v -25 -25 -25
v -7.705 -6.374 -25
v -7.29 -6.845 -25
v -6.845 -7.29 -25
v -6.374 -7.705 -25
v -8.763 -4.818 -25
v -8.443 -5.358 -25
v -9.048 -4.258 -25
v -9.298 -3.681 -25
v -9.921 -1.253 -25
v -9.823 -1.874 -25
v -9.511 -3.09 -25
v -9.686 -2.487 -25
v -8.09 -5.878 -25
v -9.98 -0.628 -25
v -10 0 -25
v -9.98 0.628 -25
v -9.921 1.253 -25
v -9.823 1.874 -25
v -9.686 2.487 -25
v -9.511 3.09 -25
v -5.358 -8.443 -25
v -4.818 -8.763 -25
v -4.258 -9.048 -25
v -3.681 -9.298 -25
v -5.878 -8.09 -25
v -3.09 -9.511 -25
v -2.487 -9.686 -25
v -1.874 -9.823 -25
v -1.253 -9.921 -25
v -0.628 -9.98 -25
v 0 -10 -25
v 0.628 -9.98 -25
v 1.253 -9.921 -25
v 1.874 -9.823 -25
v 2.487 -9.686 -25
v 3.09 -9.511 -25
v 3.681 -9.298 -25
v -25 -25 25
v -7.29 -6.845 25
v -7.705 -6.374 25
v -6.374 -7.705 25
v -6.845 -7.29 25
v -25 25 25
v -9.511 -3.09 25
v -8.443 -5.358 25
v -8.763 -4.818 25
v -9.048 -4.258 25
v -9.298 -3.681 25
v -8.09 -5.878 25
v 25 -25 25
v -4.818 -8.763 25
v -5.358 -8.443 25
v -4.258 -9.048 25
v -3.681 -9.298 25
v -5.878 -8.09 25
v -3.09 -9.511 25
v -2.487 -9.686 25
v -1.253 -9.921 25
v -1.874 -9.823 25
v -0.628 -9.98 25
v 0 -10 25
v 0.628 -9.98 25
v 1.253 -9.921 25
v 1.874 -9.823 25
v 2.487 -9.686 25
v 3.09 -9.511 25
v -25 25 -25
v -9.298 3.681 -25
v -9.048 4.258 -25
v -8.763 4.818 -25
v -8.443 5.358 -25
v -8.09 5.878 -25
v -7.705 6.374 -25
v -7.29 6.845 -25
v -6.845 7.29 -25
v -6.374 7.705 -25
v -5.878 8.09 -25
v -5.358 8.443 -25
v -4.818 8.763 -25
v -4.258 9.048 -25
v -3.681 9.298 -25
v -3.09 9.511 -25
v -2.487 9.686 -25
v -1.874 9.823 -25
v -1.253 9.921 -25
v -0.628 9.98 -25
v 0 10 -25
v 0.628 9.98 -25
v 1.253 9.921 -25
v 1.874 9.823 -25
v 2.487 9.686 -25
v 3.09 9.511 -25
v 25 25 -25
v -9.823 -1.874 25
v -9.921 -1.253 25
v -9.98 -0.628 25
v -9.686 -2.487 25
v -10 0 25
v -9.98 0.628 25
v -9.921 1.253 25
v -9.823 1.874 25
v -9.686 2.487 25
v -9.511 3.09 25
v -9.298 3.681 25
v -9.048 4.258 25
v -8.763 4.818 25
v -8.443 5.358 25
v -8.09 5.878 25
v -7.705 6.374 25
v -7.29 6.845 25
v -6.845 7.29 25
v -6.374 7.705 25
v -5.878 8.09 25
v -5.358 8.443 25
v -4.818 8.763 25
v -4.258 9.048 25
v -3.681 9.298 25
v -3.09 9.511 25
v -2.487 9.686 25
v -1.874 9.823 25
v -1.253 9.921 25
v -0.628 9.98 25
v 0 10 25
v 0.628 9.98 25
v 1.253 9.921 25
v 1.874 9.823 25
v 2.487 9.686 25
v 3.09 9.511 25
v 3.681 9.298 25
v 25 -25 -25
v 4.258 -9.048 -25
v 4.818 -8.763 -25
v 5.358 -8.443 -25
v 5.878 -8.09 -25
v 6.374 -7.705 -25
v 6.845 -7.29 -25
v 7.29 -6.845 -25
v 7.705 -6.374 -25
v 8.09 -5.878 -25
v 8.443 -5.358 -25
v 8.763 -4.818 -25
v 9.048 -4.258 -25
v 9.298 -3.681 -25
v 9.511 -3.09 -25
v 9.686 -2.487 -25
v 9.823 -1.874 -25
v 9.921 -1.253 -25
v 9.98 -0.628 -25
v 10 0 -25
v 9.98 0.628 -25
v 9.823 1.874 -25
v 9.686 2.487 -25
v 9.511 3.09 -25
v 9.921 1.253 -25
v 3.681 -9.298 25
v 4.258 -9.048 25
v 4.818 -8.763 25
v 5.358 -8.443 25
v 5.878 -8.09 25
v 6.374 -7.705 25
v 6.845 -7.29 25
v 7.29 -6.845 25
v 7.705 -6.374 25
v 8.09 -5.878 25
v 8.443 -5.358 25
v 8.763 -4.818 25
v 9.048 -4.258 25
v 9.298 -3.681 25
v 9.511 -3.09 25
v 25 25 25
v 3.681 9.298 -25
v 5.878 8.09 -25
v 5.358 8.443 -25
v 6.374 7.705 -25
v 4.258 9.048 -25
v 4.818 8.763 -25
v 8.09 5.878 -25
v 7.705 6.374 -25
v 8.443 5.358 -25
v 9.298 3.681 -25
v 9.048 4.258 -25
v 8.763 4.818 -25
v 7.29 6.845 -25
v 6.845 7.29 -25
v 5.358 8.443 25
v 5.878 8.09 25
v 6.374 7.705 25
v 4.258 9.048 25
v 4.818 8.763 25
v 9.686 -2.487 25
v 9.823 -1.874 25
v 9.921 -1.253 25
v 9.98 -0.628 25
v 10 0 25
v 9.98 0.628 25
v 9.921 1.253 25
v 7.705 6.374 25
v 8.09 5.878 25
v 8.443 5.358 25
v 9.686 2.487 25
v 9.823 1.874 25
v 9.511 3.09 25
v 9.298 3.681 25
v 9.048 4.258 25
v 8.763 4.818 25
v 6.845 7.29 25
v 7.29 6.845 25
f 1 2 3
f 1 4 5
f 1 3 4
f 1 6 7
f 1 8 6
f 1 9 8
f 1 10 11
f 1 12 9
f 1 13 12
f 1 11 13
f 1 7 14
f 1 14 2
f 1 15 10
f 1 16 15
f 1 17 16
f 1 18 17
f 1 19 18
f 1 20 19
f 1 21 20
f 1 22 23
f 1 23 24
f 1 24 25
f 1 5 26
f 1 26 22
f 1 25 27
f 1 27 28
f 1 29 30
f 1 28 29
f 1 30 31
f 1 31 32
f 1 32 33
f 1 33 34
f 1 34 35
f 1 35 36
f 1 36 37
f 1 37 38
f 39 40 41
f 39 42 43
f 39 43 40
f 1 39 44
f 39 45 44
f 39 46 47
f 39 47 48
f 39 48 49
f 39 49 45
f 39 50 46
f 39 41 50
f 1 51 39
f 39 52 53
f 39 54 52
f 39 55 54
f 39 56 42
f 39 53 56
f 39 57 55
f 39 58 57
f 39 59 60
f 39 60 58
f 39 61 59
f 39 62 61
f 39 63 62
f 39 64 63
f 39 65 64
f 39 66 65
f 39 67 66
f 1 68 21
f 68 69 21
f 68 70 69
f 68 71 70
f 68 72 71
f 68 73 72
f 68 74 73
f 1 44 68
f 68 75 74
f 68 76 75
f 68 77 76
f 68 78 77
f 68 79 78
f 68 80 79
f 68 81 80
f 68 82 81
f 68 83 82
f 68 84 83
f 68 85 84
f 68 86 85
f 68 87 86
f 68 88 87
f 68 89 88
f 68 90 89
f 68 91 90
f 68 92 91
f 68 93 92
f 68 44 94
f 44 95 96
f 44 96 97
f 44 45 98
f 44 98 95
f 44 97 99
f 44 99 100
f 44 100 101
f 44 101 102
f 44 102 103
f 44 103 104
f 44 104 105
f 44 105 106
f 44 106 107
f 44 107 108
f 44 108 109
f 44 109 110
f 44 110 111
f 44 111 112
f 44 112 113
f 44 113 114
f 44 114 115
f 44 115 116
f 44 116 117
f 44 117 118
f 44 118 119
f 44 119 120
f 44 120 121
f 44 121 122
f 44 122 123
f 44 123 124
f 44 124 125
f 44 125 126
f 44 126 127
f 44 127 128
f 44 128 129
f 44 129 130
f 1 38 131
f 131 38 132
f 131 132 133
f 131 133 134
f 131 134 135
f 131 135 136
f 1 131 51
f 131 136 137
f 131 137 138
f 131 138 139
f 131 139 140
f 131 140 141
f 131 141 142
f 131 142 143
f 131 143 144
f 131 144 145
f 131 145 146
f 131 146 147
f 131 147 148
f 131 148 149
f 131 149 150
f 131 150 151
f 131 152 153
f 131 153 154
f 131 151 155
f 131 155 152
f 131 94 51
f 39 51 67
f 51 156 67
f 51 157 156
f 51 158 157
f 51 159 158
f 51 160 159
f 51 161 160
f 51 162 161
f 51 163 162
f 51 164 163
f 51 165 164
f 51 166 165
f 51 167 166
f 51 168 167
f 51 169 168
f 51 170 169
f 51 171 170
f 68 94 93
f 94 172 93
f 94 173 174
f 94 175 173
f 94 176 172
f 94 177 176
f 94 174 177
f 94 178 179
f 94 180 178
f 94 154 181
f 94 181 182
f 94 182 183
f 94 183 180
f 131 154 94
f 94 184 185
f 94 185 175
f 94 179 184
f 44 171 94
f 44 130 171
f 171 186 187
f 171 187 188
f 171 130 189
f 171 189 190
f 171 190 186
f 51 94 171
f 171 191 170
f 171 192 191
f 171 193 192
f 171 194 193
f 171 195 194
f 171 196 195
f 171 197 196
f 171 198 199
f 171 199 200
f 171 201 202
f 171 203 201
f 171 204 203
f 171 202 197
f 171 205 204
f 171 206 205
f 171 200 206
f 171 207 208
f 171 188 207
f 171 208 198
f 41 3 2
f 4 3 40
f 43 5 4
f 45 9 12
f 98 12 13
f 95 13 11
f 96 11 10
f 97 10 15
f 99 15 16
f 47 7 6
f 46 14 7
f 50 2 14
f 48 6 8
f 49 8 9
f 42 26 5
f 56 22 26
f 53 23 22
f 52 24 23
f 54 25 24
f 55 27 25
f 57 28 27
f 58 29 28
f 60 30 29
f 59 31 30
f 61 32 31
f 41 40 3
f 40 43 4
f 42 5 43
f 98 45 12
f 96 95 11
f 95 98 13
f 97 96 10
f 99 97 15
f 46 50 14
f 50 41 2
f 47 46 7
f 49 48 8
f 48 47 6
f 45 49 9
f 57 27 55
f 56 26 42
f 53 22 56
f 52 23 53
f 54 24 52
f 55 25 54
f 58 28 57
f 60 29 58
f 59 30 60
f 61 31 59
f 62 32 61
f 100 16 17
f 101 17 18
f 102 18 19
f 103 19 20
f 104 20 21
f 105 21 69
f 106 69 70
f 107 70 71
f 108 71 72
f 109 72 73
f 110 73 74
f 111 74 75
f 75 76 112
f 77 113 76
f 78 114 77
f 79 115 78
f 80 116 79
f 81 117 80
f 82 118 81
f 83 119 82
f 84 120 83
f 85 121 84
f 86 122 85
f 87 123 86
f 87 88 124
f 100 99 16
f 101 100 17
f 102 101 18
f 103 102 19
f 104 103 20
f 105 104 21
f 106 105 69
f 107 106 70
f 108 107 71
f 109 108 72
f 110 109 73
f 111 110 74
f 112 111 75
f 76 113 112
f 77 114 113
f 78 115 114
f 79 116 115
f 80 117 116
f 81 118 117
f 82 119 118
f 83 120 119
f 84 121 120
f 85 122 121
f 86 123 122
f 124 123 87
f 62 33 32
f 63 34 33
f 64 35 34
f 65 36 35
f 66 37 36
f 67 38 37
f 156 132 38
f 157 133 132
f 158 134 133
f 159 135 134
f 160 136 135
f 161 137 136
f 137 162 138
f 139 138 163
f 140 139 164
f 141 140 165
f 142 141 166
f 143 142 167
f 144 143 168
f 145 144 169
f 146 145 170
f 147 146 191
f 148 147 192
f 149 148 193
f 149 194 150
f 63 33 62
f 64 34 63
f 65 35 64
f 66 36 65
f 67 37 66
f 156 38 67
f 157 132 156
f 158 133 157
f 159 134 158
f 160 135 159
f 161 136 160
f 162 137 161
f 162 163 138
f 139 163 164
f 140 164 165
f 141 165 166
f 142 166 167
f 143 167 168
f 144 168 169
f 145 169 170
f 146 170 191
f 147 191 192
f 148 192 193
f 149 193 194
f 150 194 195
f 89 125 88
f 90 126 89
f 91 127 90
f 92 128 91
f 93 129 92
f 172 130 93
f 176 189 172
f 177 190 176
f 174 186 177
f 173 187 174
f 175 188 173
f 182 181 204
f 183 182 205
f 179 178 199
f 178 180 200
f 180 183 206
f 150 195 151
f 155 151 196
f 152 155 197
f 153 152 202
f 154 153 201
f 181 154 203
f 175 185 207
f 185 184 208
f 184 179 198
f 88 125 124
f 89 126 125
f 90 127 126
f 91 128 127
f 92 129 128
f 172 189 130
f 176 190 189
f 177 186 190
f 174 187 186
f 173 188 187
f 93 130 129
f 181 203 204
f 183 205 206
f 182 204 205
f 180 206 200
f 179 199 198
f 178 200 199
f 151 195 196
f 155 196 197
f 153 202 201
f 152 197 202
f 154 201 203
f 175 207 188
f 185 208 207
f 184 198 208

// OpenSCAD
difference() {
    // 50mm角の立方体（原点を中心に配置）
    cube([50, 50, 50], center = true);
    // 直径20mmの穴をz軸方向に貫通（立方体の中心に配置）
    cylinder(h = 60, d = 20, center = true, $fn = 100);
}
